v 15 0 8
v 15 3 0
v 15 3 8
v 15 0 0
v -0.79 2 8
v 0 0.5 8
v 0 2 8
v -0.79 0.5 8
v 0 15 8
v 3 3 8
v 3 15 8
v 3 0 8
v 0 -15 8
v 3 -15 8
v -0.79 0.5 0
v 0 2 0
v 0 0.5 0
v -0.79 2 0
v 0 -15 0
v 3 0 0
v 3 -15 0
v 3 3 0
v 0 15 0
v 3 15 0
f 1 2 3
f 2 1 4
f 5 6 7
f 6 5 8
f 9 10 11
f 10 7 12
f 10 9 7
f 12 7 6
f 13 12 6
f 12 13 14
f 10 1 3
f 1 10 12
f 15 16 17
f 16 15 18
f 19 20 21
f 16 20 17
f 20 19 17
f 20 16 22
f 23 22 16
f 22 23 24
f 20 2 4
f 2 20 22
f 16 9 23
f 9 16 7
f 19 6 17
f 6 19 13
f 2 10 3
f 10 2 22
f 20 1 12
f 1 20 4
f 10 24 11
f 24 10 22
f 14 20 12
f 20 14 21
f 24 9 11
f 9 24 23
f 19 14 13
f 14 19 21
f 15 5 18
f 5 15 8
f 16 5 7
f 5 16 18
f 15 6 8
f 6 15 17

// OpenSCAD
// file: utils.scad
e = 0.01;
2e = 0.02;

module torus(r1, r2, $fn = $fn) {
    rotate_extrude(convexity=2, $fn=$fn)
    difference() {
        translate([r1 - r2, 0, 0]) circle(r=r2, $fn=$fn);
        translate([-r2, 0, 0]) square(r2*2, true);
    }
}

module _hooled_toruses(x, y, r_xy, r_z) {
    translate([r_xy, r_xy, 0]) torus(r_xy, r_z);
    translate([x-r_xy, r_xy, 0]) torus(r_xy, r_z);
    translate([r_xy, y-r_xy, 0]) torus(r_xy, r_z);
    translate([x-r_xy, y-r_xy, 0]) torus(r_xy, r_z);
    
    translate([r_z, r_xy, 0]) rotate([-90, 0, 0]) cylinder(y-r_xy*2, r=r_z);
    translate([x-r_z, r_xy, 0]) rotate([-90, 0, 0]) cylinder(y-r_xy*2, r=r_z);
    translate([r_xy, r_z, 0]) rotate([0, 90, 0]) cylinder(x-r_xy*2, r=r_z);
    translate([r_xy, y-r_z, 0]) rotate([0, 90, 0]) cylinder(x-r_xy*2, r=r_z);
    
    translate([r_z, r_z, -r_z])
    rcube([x-r_z*2, y-r_z*2, r_z*2], r = r_xy-r_z, center = false);
}

module rsquare(size = [30, 10], r = [1, 1, 1, 1], center = true) {
    _r0 = is_num(r) ? r : r[0];
    _r1 = is_num(r) ? r : r[1];
    _r2 = is_num(r) ? r : r[2];
    _r3 = is_num(r) ? r : r[3];
    r0 = _r0 ? _r0 : e;
    r1 = _r1 ? _r1 : e;
    r2 = _r2 ? _r2 : e;
    r3 = _r3 ? _r3 : e;

    x = size[0]; y = size [1];

    tx = center ? -x/2 : 0;
    ty = center ? -y/2 : 0;

    tr_xy(tx, ty)
    hull () {
        tr_xy(r0, r0) circle(r0);
        tr_xy(r1, y - r1) circle(r1);
        tr_xy(x - r2, y - r2) circle(r2);
        tr_xy(x - r3, r3) circle(r3);
    }
}

module rcube(size = [10, 10, 10], center = true, r = 1, rtop = 0, rbottom = 0) {
    x = size[0]; y = size[1]; h = size[2];

    tx = center ? -x/2 : 0;
    ty = center ? -y/2 : 0;

    translate([tx, ty, 0]) {
        if (rtop == 0 && rbottom == 0) {
            translate([r, r, 0]) cylinder(h, r = r);
            translate([x-r, r, 0]) cylinder(h, r = r);
            translate([r, y-r, 0]) cylinder(h, r = r);
            translate([x-r, y-r, 0]) cylinder(h, r = r);
            translate([0, r, 0]) cube([x, y-r*2, h]);
            translate([r, 0, 0]) cube([x-r*2, y, h]);
        }
        if (rtop > 0 && rbottom == 0) {
            translate([0, 0, h-rtop]) _hooled_toruses(x, y, r, rtop);
            rcube([x, y, h-rtop], r = r, center = false);
        }
        if (rtop == 0 && rbottom > 0) {
            translate([0, 0, rbottom]) _hooled_toruses(x, y, r, rbottom);
            translate([0, 0, rbottom])
            rcube([x, y, h-rbottom], r = r, center = false);
        }
        if (rtop > 0 && rbottom > 0) {
            translate([0, 0, h-rtop]) _hooled_toruses(x, y, r, rtop);
            translate([0, 0, rbottom]) _hooled_toruses(x, y, r, rbottom);
            translate([0, 0, rbottom])
            rcube([x, y, h-rbottom-rtop], r = r, center = false);            
        }
    }
}

module rotate_x(angle) { rotate([angle, 0, 0]) children(); }
module rotate_y(angle) { rotate([0, angle, 0]) children(); }
module rotate_z(angle) { rotate([0, 0, angle]) children(); }

module tr_x(ofs) { translate([ofs, 0, 0]) children(); }
module tr_y(ofs) { translate([0, ofs, 0]) children(); }
module tr_z(ofs) { translate([0, 0, ofs]) children(); }
module tr_xy(ofs_x, ofs_y) { translate([ofs_x, ofs_y, 0]) children(); }

module mirror_x() { mirror([1, 0, 0]) children(); }
module mirror_y() { mirror([0, 1, 0]) children(); }
module mirror_z() { mirror([0, 0, 1]) children(); }
module mirror_xy() { mirror_x() mirror_y() children(); }

module dupe_x() { children(); mirror_x() children(); }
module dupe_y() { children(); mirror_y() children(); }
module dupe_xy() { children(); mirror_x() children(); mirror_y() children(); mirror_xy() children(); }
// main file
include <utils.scad>;

$fn = 64;

w=8;

cube([15, 3, w]);

tr_y(-15) cube([3, 30, w]);

tr_y(0.5) tr_x(-0.8+e) cube([0.8, 3-0.5-1, w]);
